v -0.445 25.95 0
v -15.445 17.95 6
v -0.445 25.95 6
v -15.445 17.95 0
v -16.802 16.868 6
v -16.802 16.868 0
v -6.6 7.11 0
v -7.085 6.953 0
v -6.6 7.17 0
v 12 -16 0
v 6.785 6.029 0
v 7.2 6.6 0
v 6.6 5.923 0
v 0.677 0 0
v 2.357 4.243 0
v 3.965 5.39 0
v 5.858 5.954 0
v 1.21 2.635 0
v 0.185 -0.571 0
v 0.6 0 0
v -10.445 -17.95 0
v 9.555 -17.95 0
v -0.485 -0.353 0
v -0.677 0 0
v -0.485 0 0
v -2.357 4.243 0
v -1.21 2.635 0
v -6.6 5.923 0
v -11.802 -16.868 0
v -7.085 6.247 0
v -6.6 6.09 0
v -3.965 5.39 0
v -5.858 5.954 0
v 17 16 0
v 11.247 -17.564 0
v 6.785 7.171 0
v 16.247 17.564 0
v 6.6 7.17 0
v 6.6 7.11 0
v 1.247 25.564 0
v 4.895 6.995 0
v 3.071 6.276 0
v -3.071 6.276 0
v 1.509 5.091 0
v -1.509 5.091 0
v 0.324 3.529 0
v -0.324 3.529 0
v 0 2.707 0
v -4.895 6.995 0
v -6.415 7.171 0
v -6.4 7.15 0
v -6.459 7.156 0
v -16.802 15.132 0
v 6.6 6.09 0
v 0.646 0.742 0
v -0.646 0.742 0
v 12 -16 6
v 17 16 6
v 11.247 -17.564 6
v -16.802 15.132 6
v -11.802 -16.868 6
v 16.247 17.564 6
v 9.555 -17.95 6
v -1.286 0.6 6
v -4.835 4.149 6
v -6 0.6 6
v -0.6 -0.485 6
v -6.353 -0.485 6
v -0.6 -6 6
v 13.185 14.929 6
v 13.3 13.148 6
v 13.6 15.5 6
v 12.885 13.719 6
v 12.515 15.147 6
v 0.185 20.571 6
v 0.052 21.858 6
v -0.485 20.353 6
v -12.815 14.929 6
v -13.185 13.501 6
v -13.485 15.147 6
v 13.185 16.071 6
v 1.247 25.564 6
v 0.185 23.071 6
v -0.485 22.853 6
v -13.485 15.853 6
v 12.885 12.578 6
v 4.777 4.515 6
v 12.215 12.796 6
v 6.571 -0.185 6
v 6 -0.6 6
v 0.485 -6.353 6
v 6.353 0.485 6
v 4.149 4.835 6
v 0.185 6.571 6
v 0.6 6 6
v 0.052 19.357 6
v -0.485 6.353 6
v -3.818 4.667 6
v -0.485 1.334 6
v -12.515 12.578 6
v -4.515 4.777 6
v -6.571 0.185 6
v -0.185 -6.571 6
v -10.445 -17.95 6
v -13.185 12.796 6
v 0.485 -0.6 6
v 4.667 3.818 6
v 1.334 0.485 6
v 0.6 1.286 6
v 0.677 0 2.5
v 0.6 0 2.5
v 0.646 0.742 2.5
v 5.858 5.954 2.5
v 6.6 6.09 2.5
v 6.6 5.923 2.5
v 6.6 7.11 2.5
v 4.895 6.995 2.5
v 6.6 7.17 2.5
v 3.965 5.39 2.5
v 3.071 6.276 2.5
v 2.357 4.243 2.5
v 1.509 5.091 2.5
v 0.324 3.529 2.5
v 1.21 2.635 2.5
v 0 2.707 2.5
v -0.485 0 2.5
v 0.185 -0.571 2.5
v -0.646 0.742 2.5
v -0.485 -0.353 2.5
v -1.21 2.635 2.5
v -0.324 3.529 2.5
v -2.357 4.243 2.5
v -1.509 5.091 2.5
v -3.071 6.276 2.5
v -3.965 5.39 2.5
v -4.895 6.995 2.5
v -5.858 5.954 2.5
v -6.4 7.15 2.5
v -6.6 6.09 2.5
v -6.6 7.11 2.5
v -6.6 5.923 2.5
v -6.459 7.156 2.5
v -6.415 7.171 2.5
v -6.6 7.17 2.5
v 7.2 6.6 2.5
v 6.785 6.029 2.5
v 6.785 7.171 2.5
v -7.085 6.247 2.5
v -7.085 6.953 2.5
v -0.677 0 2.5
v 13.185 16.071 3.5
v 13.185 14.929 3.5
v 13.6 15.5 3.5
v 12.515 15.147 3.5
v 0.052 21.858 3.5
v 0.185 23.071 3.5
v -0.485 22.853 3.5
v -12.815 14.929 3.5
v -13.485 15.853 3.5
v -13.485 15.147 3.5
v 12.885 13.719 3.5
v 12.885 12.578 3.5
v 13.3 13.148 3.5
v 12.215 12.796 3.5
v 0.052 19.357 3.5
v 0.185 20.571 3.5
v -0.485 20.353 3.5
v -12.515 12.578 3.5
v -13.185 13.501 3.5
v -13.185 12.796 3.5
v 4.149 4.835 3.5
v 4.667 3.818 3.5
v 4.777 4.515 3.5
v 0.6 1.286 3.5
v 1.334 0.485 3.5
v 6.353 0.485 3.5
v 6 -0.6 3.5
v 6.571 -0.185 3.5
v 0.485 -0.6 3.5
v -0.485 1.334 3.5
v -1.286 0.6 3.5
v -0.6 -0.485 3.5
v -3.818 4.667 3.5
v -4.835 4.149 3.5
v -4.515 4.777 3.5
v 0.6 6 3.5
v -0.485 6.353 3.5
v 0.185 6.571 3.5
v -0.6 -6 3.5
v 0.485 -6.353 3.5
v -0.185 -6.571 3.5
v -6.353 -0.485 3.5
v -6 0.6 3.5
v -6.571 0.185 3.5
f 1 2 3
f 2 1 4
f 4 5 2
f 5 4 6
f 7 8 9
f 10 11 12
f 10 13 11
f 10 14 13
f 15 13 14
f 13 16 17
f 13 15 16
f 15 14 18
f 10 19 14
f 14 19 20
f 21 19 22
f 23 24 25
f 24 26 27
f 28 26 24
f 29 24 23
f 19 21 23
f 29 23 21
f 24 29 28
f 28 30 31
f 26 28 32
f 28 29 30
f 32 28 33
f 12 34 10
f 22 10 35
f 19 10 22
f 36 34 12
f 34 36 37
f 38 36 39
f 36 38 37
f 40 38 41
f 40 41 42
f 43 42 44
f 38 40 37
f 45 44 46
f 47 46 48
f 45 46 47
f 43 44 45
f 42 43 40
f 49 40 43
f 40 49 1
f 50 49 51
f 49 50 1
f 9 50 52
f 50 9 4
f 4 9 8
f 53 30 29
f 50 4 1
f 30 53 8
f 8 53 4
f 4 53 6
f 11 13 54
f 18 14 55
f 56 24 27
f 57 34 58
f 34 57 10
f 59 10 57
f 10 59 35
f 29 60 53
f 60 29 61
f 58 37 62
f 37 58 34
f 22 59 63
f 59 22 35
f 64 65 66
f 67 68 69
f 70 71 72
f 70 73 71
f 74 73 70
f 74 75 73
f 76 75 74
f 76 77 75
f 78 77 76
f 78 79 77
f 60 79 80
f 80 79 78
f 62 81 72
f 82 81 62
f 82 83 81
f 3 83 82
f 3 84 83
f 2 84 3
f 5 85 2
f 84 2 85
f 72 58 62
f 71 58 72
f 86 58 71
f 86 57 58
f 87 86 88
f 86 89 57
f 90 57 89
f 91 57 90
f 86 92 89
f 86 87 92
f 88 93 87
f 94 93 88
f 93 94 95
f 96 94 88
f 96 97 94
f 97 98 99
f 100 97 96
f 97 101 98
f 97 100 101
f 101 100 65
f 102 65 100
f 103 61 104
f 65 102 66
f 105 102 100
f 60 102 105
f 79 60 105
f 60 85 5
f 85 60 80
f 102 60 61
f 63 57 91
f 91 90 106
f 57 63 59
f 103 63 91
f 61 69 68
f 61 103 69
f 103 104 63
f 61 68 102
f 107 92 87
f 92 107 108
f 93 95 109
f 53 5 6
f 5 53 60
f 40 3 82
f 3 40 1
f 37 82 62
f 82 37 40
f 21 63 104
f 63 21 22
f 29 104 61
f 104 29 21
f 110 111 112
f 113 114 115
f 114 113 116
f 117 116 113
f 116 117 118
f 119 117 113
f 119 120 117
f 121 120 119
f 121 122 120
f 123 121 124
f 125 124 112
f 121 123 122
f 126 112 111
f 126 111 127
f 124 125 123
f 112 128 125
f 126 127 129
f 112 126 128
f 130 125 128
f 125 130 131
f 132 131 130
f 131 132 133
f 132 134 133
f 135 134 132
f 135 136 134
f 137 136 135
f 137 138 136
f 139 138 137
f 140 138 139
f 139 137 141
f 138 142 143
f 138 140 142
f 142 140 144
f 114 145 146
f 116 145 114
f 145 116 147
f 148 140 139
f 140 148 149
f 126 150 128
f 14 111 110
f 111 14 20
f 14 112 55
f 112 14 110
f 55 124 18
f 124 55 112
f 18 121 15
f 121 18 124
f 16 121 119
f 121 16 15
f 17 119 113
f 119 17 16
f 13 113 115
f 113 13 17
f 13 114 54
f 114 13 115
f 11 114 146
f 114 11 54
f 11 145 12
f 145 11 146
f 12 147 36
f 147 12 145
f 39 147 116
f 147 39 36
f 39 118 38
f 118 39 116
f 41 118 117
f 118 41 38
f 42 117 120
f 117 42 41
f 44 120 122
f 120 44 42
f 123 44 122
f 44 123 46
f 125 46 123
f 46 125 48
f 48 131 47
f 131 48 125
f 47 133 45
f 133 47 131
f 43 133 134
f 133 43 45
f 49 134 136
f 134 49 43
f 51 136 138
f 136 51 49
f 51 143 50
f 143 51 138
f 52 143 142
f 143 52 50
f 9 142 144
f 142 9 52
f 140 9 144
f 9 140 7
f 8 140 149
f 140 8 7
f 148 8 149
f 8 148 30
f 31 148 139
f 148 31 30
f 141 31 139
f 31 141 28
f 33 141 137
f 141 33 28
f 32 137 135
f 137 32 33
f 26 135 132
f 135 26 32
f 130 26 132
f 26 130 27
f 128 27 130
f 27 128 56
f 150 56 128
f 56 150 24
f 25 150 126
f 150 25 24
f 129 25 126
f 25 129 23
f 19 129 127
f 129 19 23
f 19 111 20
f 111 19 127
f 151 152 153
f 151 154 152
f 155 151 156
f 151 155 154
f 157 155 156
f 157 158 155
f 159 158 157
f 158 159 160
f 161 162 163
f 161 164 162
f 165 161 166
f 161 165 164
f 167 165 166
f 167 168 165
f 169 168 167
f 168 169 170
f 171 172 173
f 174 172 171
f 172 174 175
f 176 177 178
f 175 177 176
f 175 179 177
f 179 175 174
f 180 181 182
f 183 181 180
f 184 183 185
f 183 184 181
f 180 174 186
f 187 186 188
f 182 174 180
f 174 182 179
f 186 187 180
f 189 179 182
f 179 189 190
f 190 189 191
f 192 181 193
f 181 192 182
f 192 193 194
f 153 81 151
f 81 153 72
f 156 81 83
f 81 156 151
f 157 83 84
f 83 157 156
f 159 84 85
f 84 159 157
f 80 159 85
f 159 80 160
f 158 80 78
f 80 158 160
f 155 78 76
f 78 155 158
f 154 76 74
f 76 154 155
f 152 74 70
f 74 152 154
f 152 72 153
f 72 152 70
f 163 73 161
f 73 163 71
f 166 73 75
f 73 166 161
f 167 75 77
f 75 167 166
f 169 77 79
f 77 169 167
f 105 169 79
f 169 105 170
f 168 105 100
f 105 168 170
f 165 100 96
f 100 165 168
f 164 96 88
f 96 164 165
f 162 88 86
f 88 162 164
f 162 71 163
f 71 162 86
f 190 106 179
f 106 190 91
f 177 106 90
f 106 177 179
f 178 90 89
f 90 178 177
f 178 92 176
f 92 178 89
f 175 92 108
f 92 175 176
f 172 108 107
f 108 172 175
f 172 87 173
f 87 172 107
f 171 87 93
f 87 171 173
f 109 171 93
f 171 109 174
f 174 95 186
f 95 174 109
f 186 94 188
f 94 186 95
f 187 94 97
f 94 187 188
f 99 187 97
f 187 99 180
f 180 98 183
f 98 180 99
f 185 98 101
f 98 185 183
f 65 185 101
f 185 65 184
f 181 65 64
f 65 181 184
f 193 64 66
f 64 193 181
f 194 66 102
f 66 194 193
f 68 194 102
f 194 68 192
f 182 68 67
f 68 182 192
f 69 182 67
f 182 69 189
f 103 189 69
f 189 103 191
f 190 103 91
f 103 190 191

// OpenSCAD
// file: moves/jump.scad
// By: chickenchuck040, https://www.thingiverse.com/thing:1092611
module arc(radius, thick, angle) {
    intersection() {
        union() {
            rights = floor(angle/90);
            remain = angle-rights*90;
            if(angle > 90) {
                for(i = [0:rights-1]) {
                    rotate(i*90-(rights-1)*90/2) {
                         polygon([[0, 0], [radius+thick, (radius+thick)*tan(90/2)], [radius+thick, -(radius+thick)*tan(90/2)]]);
                    }
                }
                rotate(-(rights)*90/2)
                    polygon([[0, 0], [radius+thick, 0], [radius+thick, -(radius+thick)*tan(remain/2)]]);
                rotate((rights)*90/2)
                    polygon([[0, 0], [radius+thick, (radius+thick)*tan(remain/2)], [radius+thick, 0]]);
            } else {
                polygon([[0, 0], [radius+thick, (radius+thick)*tan(angle/2)], [radius+thick, -(radius+thick)*tan(angle/2)]]);
            }
        }

        difference() {
            circle(radius+thick);
            circle(radius);
        }
    }
}

module shogi_move_jump(radius=6, thick=0.6) {
    translate([-radius-thick, 0, 0]) rotate(a=45)
        arc(radius=radius, thick=thick*2, angle=90);

    translate([radius+thick, 0, 0]) rotate(a=135)
        arc(radius=radius, thick=thick*2, angle=90);

    circle(thick);
    translate([-radius-thick, radius+thick]) circle(thick);
    translate([+radius+thick, radius+thick]) circle(thick);
}
// file: moves/step.scad
module shogi_move_step(edges=[0], length=6, thick=0.6) {
    for (a=edges) {
        rotate(a=a*45) hull() {
            circle(thick);
            translate([0, length, 0]) circle(thick);
        }
    }
}
// file: ranks/rank2.scad
module shogi_rank_2(thick=0.6) {
    hull() {
        translate([-12.7, 13.148182, 0]) circle(thick);
        translate([0, 20, 0]) circle(thick);
    }

    hull() {
        translate([0, 20, 0]) circle(thick);
        translate([12.7, 13.148182, 0]) circle(thick);
    }
}
// file: ranks/rank1.scad
module shogi_rank_1(thick=0.6) {
    hull() {
        translate([-13, 15.5, 0]) circle(thick);
        translate([0, 22.5, 0]) circle(thick);
    }

    hull() {
        translate([0, 22.5, 0]) circle(thick);
        translate([13, 15.5, 0]) circle(thick);
    }
}
// file: koma/slim.scad
module shogi_koma_slim(width=30, length=40, rounding=2) {
    points=[
        [width/6 , 0],
        [0, length*0.8],
        [width/2, length],
        [width, length*0.8],
        [5*width/6, 0]
    ];

    minkowski() {
        polygon(points);
        circle(rounding);
    }
}
// file: base/piece.scad
module shogi_piece(thick=6) {
    unit=thick/12;

    difference() {
        translate([-15, -16, 0])
        linear_extrude(thick) children(0);
        translate([0, 0, -1*unit]) linear_extrude(6*unit) children(1);
        translate([0, 0, 7*unit]) linear_extrude(6*unit) children(2);
        translate([0, 0, 9*unit]) linear_extrude(6*unit) children(3);
    }
}
// main file
use <base/piece.scad>;
use <koma/slim.scad>;
use <ranks/rank1.scad>;
use <ranks/rank2.scad>;
use <moves/step.scad>;
use <moves/jump.scad>;

shogi_piece() {
    shogi_koma_slim();
    shogi_move_jump();
    union() {
        shogi_rank_1();
        shogi_rank_2();
        shogi_move_step(edges=[0, 1, 2, 4, 6, 7]);
    }
    union() {}
}
